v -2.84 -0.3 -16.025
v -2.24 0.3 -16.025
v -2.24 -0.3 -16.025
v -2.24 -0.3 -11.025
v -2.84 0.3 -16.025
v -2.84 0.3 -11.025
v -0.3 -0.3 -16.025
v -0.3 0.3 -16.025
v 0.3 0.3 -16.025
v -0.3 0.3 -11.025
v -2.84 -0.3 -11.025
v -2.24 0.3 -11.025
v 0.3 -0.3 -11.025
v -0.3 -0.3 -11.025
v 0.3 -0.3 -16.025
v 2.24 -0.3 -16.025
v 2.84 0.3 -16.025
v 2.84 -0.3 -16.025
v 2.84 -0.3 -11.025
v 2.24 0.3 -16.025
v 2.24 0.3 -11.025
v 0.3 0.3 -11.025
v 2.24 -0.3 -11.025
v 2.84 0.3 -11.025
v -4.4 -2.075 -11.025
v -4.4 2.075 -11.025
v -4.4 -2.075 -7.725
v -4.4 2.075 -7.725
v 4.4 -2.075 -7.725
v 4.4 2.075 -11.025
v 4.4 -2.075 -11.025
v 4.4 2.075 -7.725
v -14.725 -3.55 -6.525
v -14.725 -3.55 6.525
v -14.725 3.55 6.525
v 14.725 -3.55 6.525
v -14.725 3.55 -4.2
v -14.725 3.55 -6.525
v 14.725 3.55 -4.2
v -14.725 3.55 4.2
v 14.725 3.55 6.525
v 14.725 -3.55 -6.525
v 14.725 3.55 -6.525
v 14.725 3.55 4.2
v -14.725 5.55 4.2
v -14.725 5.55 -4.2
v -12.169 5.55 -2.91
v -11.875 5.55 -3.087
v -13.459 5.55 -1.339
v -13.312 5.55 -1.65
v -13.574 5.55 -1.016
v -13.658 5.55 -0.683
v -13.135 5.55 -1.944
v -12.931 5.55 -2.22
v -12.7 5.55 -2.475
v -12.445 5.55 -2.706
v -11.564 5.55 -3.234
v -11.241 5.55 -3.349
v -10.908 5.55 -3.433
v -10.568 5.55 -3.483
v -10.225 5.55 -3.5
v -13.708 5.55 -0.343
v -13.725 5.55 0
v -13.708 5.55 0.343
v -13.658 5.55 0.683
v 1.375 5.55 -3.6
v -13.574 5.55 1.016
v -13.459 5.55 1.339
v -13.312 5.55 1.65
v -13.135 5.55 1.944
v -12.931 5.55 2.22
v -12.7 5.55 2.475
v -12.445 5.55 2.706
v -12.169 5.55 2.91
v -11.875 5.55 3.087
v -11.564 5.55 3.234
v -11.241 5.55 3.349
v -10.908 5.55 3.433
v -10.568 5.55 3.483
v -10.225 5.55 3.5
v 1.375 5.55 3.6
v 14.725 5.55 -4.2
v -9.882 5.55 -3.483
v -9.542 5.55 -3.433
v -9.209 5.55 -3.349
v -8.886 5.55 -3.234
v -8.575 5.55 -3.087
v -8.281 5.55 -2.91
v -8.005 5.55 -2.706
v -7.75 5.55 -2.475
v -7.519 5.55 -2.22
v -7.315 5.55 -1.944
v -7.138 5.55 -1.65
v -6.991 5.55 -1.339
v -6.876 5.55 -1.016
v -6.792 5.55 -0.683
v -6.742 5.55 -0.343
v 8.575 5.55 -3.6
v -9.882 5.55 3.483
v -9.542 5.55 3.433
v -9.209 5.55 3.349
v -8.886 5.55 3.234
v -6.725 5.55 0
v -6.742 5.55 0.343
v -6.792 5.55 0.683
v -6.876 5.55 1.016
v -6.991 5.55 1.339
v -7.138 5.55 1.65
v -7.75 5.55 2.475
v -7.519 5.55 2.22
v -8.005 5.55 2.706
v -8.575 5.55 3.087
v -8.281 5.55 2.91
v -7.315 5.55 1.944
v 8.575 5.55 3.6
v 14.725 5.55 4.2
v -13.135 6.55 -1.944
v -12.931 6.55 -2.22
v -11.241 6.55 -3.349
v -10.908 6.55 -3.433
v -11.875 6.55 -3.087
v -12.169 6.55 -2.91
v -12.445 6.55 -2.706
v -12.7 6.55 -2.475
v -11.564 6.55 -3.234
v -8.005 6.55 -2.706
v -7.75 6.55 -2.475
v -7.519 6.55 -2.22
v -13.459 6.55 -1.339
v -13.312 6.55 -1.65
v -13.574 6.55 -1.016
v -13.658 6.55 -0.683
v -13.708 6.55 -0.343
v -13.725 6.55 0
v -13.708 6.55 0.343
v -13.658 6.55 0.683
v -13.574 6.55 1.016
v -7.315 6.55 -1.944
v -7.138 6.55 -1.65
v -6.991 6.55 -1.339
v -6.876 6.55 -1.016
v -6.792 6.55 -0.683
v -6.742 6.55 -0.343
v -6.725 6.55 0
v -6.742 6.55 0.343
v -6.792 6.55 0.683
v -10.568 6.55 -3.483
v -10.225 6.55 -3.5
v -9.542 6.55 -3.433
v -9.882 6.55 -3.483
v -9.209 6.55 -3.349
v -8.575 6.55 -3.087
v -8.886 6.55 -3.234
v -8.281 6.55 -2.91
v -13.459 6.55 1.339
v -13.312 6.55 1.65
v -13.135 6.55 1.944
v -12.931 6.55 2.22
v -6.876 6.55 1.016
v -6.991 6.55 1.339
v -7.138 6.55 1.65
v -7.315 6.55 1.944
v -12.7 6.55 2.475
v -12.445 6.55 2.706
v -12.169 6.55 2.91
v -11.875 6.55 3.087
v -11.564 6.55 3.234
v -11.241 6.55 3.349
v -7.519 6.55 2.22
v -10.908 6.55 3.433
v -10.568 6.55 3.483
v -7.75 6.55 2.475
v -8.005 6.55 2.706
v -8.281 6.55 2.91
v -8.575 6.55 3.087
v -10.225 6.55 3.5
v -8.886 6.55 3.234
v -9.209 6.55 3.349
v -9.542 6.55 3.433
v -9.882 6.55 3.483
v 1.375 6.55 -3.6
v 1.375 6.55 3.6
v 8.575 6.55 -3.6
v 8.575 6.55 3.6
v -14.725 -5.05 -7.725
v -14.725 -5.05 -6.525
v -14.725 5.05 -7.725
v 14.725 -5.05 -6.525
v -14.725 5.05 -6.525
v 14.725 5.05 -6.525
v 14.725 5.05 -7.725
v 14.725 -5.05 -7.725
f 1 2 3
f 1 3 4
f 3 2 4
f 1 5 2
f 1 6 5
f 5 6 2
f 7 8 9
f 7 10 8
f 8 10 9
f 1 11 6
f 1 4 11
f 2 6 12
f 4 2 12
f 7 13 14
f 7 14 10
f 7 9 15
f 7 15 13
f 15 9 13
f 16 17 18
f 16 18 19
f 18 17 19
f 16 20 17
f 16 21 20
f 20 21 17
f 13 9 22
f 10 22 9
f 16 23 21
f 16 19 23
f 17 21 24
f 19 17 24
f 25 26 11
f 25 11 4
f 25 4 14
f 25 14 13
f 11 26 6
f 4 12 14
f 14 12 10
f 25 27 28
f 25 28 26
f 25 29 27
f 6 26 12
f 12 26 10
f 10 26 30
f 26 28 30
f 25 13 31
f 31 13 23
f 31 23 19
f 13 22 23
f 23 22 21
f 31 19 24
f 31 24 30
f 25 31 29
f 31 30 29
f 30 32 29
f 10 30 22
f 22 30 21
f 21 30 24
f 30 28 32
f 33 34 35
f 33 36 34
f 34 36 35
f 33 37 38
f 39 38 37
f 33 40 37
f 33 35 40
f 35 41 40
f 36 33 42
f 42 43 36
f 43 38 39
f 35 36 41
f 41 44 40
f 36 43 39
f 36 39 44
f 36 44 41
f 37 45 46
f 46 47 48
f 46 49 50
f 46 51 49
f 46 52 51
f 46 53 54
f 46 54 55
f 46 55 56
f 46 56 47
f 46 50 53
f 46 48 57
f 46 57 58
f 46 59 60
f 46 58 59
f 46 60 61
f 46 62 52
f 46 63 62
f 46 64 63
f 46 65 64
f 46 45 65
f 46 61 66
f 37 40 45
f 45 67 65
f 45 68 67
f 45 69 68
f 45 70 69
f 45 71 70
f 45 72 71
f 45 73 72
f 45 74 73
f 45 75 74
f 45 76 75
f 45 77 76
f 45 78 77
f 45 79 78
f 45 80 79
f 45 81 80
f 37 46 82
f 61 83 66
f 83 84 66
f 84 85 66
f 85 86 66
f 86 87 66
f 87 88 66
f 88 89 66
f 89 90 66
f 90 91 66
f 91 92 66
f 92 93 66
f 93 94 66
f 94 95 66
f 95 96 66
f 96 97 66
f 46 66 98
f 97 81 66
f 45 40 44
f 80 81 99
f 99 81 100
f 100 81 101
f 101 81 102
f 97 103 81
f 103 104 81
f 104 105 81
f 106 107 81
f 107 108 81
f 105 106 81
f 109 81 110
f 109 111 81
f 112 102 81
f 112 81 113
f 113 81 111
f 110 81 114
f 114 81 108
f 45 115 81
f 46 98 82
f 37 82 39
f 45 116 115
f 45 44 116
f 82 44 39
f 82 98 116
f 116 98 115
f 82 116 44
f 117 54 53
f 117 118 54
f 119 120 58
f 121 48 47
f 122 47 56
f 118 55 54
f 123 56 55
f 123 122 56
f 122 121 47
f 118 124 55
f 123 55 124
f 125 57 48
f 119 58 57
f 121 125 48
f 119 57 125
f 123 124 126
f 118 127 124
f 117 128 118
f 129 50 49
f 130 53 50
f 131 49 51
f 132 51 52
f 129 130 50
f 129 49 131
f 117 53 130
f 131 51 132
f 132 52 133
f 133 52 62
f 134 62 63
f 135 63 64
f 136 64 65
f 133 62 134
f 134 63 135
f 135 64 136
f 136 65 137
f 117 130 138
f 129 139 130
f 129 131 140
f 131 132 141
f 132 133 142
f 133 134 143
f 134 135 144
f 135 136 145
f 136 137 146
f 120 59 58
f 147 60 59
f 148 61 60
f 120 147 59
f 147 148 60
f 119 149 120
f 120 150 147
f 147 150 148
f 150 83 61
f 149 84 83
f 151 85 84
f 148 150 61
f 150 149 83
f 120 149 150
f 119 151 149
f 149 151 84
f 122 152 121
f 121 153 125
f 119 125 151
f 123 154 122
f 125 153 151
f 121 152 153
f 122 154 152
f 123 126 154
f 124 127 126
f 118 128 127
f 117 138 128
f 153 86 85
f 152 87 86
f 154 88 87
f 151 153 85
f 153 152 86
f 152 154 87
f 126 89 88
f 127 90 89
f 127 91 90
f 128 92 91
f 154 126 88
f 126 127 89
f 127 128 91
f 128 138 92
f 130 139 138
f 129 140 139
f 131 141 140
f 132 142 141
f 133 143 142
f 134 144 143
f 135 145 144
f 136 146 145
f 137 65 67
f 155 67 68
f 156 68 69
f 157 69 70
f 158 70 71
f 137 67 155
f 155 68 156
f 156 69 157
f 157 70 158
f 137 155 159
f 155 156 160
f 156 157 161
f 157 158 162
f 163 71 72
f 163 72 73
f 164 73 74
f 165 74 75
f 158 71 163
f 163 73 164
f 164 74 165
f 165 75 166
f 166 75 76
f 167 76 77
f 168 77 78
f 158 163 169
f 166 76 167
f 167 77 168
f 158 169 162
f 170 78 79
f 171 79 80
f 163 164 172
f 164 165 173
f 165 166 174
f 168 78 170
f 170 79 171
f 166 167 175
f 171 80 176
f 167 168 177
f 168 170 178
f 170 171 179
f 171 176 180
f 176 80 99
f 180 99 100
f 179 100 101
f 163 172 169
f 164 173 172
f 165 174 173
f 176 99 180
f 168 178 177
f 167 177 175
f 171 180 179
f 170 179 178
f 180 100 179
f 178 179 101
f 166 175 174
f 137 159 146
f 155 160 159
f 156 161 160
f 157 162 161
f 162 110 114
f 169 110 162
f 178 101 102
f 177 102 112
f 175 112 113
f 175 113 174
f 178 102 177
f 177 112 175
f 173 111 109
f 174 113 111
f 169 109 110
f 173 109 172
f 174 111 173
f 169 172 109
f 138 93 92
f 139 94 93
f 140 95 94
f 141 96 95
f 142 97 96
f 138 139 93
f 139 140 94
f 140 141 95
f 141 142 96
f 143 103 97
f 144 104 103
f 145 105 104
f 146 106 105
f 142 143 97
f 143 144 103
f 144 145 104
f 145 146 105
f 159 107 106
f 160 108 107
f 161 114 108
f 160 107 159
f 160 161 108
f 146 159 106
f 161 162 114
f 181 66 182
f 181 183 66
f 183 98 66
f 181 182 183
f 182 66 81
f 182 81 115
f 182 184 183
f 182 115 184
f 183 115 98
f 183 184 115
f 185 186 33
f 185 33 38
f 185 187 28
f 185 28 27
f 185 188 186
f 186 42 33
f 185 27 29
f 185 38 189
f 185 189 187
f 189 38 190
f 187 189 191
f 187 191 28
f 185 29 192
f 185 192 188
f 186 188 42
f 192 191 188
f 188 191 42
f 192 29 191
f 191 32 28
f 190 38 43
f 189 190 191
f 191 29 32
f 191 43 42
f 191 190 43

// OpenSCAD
// =====================================================================
// Sharp GP2Y0D413K0F Distance Sensor - Outline Model
// Dimensions from datasheet (Unit: mm)
// Coordinate system: body center at origin,
//   +Z = up (connector down, lenses face front +Y)
// =====================================================================

$fn = 64;

// ---- Main dimensions (from outline drawing) ----
body_w     = 29.45;   // width  (X)  front face length
body_h     = 13.05;   // case height (Z)  (main case block)
body_d     = 7.1;     // case depth (Y)   (7.1 ±0.1)

lenscase_protrude = 2;     // lens case front protrusion (Y)
lenscase_w        = body_w; // lens window region width
lenscase_h        = 8.4;    // lens case height region (Z)

// Lens center positions (X) measured from left edge (light emitter side)
emit_x_from_left = 4.5;    // *4.5  emitter (circular) lens center
det_x_from_left  = 19.7;   // *19.7 detector (rect) lens center

emit_lens_d = 7.0;     // circular emitter window diameter (approx)
det_lens_w  = 7.2;     // rectangular detector window width (approx)
det_lens_h  = 7.2;     // rectangular detector window height (7.2)

// PWB (printed wiring board)
pwb_w     = body_w;
pwb_d     = 10.1;      // PWB depth (Y) reference
pwb_t     = 1.2;       // PWB thickness (Z)

// Overall height from top of case to bottom of PWB/connector ~ 18.9
total_h   = 18.9;

// Connector (JCTC 12001W90-3P-HF) simplified
conn_w    = 16.3 - 7.5; // span between marks ~ 8.8 -> use connector body width
conn_body_w = 8.8;
conn_body_d = 4.15;     // depth-ish
conn_h      = 3.3;      // protrusion below PWB (3.3 ref)
conn_pin_n  = 3;

// =====================================================================
// Derived center offsets
// =====================================================================
emit_cx = emit_x_from_left - body_w/2;   // X position of emitter lens center
det_cx  = det_x_from_left  - body_w/2;   // X position of detector lens center

// =====================================================================
// Modules
// =====================================================================

// Main case block (Carbonic ABS)
module body_case() {
    color("DimGray")
    translate([-body_w/2, -body_d/2, -body_h/2])
        cube([body_w, body_d, body_h]);
}

// Lens case front protrusion with two windows
module lens_case() {
    color("Gray")
    // protruding block on front (+Y) face
    translate([-lenscase_w/2, body_d/2, -lenscase_h/2])
        cube([lenscase_w, lenscase_protrude, lenscase_h]);
}

// Emitter lens (circular window, left)
module emitter_lens() {
    color("Crimson")
    translate([emit_cx, body_d/2 + lenscase_protrude, 0])
        rotate([-90, 0, 0])
            cylinder(d = emit_lens_d, h = 1.0);
}

// Detector lens (rectangular window, right)
module detector_lens() {
    color("DarkRed")
    translate([det_cx - det_lens_w/2,
               body_d/2 + lenscase_protrude,
               -det_lens_h/2])
        cube([det_lens_w, 1.0, det_lens_h]);
}

// PWB (printed wiring board) - thin plate below the case
module pwb() {
    color("ForestGreen")
    translate([-pwb_w/2, -pwb_d/2 + (pwb_d - body_d)/2 - 1.5,
               -body_h/2 - pwb_t])
        cube([pwb_w, pwb_d, pwb_t]);
}

// Connector (3-pin) simplified, below PWB
module connector() {
    pwb_bottom = -body_h/2 - pwb_t;
    // housing
    color("Black")
    translate([-conn_body_w/2, -conn_body_d/2,
               pwb_bottom - conn_h])
        cube([conn_body_w, conn_body_d, conn_h]);
    // 3 pins
    pin_pitch = 2.54;
    color("Goldenrod")
    for (i = [0 : conn_pin_n - 1]) {
        px = (i - (conn_pin_n - 1)/2) * pin_pitch;
        translate([px, 0, pwb_bottom - conn_h - 2.5])
            cube([0.6, 0.6, 5], center = true);
    }
}

// =====================================================================
// Assembly
// =====================================================================
module gp2y0d413k0f() {
    body_case();
    lens_case();
    emitter_lens();
    detector_lens();
    pwb();
    connector();
}

gp2y0d413k0f();
